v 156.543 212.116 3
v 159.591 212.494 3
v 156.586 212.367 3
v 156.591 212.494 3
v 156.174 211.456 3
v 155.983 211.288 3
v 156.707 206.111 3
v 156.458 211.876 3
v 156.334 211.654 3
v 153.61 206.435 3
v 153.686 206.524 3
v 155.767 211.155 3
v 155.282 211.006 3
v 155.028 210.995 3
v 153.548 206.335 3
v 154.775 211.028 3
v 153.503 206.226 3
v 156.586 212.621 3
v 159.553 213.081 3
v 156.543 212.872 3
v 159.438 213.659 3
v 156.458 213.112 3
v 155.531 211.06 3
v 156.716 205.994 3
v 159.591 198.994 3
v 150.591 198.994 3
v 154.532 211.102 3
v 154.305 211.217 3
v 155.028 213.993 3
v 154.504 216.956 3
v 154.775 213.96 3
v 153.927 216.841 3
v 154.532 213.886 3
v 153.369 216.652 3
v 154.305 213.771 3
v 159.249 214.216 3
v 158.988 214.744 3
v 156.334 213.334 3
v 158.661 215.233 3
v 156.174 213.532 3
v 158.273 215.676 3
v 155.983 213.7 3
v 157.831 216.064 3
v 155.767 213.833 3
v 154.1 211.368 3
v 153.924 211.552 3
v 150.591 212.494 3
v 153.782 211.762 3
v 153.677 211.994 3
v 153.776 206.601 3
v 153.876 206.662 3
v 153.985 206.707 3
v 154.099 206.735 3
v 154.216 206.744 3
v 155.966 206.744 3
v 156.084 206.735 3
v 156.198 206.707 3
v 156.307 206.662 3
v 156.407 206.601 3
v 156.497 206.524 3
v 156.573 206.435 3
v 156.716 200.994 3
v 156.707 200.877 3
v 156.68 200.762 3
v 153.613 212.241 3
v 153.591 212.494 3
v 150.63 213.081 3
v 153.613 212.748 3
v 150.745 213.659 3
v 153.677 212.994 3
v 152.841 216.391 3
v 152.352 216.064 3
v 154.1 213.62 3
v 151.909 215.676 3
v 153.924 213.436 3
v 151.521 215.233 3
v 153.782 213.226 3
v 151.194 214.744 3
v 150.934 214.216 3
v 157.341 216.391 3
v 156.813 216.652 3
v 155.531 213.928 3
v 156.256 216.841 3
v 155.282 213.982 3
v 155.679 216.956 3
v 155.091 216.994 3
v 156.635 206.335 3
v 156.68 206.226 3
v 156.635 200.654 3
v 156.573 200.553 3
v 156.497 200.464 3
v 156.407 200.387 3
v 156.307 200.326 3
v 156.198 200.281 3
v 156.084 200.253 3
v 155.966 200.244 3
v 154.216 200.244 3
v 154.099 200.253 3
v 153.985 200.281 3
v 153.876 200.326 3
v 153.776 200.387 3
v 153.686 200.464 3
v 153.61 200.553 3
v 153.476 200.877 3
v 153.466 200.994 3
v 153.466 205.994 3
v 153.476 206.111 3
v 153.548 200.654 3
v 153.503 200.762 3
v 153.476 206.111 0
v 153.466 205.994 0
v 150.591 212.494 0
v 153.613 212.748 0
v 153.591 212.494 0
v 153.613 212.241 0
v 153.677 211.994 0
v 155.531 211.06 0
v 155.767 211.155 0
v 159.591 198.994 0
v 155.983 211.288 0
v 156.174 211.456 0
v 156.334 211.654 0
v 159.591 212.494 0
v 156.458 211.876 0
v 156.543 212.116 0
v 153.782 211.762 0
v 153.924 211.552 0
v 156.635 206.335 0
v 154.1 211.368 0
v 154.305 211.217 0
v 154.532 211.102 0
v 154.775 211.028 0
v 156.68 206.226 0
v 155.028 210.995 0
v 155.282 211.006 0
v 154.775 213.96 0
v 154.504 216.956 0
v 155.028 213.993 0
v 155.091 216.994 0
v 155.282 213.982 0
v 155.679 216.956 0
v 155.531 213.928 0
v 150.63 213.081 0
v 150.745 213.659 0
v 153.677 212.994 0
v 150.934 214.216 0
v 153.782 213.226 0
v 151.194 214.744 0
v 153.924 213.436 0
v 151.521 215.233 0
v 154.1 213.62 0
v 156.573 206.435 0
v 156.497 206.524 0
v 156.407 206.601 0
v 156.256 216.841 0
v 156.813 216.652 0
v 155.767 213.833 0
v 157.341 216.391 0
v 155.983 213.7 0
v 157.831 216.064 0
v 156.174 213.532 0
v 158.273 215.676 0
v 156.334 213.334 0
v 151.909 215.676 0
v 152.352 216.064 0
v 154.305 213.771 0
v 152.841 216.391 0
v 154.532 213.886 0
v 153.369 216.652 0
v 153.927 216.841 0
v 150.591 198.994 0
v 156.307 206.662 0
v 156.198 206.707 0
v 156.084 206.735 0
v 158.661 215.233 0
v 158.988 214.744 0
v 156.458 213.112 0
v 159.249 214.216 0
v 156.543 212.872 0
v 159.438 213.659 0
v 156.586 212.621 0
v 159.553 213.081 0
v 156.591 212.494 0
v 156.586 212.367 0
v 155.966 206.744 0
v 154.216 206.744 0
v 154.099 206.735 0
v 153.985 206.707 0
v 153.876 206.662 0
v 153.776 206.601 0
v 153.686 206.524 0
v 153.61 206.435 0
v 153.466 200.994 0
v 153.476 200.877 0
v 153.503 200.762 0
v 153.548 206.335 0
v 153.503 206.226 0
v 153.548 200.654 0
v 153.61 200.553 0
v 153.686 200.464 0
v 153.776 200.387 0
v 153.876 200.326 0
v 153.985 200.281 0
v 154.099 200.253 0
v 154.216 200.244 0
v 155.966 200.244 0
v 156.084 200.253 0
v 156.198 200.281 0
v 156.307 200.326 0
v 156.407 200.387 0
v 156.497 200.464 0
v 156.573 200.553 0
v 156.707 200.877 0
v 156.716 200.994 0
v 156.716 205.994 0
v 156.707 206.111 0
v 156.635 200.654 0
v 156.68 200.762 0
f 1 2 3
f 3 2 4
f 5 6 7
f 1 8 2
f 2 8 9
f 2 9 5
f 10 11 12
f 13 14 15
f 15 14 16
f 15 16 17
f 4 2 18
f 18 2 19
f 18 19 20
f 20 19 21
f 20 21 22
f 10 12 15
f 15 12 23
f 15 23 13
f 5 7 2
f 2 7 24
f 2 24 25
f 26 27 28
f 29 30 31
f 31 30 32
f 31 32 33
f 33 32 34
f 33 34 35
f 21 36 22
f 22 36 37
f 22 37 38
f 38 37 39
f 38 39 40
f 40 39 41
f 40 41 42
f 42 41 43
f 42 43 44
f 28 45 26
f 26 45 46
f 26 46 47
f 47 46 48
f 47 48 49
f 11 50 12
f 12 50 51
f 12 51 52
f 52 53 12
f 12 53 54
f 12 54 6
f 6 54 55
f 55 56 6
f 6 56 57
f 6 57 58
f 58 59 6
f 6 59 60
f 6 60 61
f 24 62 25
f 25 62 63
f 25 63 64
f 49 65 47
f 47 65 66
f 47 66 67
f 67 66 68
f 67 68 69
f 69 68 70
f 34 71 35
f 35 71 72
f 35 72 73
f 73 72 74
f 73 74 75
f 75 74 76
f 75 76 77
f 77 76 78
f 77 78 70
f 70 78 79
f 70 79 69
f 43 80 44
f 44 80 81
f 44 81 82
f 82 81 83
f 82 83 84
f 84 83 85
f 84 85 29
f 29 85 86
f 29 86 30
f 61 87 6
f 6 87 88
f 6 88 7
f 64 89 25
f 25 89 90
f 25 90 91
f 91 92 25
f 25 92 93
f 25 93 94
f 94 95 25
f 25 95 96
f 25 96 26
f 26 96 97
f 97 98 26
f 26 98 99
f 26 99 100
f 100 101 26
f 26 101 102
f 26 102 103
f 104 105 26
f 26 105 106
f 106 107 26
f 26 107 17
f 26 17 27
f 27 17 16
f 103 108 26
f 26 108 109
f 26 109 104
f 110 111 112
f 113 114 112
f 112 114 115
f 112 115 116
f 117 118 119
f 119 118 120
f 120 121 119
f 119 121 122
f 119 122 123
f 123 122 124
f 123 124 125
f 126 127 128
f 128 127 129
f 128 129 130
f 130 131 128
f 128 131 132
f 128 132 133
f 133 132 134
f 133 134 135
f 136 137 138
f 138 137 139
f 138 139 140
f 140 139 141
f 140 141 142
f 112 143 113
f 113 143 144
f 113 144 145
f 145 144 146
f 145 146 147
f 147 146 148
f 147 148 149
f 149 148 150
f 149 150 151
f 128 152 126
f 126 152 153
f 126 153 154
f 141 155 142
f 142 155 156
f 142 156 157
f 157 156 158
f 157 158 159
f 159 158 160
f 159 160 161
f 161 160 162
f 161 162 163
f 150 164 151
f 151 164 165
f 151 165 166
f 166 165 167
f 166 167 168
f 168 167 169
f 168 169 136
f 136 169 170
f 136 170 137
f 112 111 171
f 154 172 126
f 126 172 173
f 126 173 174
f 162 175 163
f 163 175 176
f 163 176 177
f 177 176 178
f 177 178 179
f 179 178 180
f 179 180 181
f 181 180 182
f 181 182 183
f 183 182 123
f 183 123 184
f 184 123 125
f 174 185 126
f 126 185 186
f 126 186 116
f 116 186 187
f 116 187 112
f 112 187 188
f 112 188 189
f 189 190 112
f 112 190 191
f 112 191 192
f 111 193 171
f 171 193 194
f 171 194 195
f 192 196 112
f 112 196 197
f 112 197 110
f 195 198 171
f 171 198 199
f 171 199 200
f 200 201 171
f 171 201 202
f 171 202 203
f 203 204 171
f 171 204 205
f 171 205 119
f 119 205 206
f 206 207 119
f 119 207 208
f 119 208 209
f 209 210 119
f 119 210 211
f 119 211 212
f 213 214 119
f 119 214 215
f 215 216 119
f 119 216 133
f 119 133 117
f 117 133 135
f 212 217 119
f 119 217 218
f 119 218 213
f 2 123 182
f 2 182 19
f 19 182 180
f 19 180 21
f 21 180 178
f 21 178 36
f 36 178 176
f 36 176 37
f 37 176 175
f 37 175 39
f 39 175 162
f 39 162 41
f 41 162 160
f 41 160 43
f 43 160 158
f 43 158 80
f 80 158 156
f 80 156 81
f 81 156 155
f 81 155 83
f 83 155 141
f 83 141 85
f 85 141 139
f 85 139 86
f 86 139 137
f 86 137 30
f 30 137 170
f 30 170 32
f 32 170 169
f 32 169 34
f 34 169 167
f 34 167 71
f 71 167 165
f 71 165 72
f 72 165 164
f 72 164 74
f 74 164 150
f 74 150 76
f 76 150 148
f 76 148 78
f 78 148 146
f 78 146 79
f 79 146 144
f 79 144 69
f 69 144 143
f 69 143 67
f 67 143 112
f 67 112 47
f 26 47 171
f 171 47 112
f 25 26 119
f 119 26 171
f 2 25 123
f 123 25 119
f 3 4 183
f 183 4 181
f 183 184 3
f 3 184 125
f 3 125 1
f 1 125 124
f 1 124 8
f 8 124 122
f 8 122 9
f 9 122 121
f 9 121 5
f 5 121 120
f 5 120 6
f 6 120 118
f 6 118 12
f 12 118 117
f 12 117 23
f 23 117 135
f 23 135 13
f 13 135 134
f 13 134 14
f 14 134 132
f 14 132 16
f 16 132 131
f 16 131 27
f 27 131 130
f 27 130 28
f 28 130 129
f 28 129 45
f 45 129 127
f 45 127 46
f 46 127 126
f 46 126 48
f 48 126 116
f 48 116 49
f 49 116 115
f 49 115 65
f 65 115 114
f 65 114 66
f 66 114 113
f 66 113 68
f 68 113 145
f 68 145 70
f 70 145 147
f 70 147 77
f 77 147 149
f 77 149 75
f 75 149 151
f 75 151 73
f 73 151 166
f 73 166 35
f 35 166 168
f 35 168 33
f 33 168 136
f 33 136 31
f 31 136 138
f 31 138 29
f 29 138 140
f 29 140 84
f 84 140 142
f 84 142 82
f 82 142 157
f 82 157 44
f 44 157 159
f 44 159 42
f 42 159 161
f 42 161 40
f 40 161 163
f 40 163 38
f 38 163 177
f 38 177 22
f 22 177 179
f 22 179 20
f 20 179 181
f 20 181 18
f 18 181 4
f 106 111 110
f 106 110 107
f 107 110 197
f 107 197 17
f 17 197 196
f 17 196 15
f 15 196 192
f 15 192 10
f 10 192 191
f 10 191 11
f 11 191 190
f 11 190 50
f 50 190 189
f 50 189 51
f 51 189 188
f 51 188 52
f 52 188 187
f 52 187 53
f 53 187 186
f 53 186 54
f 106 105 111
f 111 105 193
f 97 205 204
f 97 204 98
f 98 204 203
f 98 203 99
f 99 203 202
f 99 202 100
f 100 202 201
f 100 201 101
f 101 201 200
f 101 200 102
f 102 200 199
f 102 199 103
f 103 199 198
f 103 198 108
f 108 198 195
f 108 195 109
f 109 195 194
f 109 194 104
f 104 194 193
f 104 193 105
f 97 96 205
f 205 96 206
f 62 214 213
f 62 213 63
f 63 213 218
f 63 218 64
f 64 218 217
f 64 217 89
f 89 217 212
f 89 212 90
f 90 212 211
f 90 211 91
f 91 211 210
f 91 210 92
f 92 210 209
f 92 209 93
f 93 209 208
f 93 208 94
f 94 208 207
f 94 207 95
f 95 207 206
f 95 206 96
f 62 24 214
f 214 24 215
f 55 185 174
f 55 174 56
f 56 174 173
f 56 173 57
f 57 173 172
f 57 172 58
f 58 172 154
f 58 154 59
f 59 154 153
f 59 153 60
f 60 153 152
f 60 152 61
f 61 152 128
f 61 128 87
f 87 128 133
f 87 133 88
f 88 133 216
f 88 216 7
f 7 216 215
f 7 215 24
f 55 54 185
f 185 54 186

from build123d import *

# Parameters (mm, degrees)
MODEL_R                 = 1.5
SALIENTE_EXTRUIR1_DEPTH = 3


with BuildPart() as part:
    # Model → Saliente-Extruir1 (new body)
    with BuildSketch(Plane.XY):
        with BuildLine():
            Line((159.591356547, 212.494036843), (159.591356547, 198.994036843))
            Line((159.591356547, 198.994036843), (150.591356547, 198.994036843))
            Line((150.591356547, 198.994036843), (150.591356547, 212.494036843))
            ThreePointArc((150.591356547, 212.494036843), (155.091356547, 216.994036843), (159.591356547, 212.494036843))
        make_face()
        with Locations((155.091356547, 212.494036843)):
            Circle(MODEL_R, mode=Mode.SUBTRACT)
        with BuildLine():
            Line((153.466356547, 200.994036843), (153.466356547, 205.994036843))
            ThreePointArc((153.466356547, 205.994036843), (153.686026462, 206.524366929), (154.216356547, 206.744036843))
            Line((154.216356547, 206.744036843), (155.966356547, 206.744036843))
            ThreePointArc((155.966356547, 206.744036843), (156.496686633, 206.524366929), (156.716356547, 205.994036843))
            Line((156.716356547, 205.994036843), (156.716356547, 200.994036843))
            ThreePointArc((156.716356547, 200.994036843), (156.496686633, 200.463706757), (155.966356547, 200.244036843))
            Line((155.966356547, 200.244036843), (154.216356547, 200.244036843))
            ThreePointArc((154.216356547, 200.244036843), (153.686026462, 200.463706757), (153.466356547, 200.994036843))
        make_face(mode=Mode.SUBTRACT)
    extrude(amount=SALIENTE_EXTRUIR1_DEPTH)


solid = part.part
